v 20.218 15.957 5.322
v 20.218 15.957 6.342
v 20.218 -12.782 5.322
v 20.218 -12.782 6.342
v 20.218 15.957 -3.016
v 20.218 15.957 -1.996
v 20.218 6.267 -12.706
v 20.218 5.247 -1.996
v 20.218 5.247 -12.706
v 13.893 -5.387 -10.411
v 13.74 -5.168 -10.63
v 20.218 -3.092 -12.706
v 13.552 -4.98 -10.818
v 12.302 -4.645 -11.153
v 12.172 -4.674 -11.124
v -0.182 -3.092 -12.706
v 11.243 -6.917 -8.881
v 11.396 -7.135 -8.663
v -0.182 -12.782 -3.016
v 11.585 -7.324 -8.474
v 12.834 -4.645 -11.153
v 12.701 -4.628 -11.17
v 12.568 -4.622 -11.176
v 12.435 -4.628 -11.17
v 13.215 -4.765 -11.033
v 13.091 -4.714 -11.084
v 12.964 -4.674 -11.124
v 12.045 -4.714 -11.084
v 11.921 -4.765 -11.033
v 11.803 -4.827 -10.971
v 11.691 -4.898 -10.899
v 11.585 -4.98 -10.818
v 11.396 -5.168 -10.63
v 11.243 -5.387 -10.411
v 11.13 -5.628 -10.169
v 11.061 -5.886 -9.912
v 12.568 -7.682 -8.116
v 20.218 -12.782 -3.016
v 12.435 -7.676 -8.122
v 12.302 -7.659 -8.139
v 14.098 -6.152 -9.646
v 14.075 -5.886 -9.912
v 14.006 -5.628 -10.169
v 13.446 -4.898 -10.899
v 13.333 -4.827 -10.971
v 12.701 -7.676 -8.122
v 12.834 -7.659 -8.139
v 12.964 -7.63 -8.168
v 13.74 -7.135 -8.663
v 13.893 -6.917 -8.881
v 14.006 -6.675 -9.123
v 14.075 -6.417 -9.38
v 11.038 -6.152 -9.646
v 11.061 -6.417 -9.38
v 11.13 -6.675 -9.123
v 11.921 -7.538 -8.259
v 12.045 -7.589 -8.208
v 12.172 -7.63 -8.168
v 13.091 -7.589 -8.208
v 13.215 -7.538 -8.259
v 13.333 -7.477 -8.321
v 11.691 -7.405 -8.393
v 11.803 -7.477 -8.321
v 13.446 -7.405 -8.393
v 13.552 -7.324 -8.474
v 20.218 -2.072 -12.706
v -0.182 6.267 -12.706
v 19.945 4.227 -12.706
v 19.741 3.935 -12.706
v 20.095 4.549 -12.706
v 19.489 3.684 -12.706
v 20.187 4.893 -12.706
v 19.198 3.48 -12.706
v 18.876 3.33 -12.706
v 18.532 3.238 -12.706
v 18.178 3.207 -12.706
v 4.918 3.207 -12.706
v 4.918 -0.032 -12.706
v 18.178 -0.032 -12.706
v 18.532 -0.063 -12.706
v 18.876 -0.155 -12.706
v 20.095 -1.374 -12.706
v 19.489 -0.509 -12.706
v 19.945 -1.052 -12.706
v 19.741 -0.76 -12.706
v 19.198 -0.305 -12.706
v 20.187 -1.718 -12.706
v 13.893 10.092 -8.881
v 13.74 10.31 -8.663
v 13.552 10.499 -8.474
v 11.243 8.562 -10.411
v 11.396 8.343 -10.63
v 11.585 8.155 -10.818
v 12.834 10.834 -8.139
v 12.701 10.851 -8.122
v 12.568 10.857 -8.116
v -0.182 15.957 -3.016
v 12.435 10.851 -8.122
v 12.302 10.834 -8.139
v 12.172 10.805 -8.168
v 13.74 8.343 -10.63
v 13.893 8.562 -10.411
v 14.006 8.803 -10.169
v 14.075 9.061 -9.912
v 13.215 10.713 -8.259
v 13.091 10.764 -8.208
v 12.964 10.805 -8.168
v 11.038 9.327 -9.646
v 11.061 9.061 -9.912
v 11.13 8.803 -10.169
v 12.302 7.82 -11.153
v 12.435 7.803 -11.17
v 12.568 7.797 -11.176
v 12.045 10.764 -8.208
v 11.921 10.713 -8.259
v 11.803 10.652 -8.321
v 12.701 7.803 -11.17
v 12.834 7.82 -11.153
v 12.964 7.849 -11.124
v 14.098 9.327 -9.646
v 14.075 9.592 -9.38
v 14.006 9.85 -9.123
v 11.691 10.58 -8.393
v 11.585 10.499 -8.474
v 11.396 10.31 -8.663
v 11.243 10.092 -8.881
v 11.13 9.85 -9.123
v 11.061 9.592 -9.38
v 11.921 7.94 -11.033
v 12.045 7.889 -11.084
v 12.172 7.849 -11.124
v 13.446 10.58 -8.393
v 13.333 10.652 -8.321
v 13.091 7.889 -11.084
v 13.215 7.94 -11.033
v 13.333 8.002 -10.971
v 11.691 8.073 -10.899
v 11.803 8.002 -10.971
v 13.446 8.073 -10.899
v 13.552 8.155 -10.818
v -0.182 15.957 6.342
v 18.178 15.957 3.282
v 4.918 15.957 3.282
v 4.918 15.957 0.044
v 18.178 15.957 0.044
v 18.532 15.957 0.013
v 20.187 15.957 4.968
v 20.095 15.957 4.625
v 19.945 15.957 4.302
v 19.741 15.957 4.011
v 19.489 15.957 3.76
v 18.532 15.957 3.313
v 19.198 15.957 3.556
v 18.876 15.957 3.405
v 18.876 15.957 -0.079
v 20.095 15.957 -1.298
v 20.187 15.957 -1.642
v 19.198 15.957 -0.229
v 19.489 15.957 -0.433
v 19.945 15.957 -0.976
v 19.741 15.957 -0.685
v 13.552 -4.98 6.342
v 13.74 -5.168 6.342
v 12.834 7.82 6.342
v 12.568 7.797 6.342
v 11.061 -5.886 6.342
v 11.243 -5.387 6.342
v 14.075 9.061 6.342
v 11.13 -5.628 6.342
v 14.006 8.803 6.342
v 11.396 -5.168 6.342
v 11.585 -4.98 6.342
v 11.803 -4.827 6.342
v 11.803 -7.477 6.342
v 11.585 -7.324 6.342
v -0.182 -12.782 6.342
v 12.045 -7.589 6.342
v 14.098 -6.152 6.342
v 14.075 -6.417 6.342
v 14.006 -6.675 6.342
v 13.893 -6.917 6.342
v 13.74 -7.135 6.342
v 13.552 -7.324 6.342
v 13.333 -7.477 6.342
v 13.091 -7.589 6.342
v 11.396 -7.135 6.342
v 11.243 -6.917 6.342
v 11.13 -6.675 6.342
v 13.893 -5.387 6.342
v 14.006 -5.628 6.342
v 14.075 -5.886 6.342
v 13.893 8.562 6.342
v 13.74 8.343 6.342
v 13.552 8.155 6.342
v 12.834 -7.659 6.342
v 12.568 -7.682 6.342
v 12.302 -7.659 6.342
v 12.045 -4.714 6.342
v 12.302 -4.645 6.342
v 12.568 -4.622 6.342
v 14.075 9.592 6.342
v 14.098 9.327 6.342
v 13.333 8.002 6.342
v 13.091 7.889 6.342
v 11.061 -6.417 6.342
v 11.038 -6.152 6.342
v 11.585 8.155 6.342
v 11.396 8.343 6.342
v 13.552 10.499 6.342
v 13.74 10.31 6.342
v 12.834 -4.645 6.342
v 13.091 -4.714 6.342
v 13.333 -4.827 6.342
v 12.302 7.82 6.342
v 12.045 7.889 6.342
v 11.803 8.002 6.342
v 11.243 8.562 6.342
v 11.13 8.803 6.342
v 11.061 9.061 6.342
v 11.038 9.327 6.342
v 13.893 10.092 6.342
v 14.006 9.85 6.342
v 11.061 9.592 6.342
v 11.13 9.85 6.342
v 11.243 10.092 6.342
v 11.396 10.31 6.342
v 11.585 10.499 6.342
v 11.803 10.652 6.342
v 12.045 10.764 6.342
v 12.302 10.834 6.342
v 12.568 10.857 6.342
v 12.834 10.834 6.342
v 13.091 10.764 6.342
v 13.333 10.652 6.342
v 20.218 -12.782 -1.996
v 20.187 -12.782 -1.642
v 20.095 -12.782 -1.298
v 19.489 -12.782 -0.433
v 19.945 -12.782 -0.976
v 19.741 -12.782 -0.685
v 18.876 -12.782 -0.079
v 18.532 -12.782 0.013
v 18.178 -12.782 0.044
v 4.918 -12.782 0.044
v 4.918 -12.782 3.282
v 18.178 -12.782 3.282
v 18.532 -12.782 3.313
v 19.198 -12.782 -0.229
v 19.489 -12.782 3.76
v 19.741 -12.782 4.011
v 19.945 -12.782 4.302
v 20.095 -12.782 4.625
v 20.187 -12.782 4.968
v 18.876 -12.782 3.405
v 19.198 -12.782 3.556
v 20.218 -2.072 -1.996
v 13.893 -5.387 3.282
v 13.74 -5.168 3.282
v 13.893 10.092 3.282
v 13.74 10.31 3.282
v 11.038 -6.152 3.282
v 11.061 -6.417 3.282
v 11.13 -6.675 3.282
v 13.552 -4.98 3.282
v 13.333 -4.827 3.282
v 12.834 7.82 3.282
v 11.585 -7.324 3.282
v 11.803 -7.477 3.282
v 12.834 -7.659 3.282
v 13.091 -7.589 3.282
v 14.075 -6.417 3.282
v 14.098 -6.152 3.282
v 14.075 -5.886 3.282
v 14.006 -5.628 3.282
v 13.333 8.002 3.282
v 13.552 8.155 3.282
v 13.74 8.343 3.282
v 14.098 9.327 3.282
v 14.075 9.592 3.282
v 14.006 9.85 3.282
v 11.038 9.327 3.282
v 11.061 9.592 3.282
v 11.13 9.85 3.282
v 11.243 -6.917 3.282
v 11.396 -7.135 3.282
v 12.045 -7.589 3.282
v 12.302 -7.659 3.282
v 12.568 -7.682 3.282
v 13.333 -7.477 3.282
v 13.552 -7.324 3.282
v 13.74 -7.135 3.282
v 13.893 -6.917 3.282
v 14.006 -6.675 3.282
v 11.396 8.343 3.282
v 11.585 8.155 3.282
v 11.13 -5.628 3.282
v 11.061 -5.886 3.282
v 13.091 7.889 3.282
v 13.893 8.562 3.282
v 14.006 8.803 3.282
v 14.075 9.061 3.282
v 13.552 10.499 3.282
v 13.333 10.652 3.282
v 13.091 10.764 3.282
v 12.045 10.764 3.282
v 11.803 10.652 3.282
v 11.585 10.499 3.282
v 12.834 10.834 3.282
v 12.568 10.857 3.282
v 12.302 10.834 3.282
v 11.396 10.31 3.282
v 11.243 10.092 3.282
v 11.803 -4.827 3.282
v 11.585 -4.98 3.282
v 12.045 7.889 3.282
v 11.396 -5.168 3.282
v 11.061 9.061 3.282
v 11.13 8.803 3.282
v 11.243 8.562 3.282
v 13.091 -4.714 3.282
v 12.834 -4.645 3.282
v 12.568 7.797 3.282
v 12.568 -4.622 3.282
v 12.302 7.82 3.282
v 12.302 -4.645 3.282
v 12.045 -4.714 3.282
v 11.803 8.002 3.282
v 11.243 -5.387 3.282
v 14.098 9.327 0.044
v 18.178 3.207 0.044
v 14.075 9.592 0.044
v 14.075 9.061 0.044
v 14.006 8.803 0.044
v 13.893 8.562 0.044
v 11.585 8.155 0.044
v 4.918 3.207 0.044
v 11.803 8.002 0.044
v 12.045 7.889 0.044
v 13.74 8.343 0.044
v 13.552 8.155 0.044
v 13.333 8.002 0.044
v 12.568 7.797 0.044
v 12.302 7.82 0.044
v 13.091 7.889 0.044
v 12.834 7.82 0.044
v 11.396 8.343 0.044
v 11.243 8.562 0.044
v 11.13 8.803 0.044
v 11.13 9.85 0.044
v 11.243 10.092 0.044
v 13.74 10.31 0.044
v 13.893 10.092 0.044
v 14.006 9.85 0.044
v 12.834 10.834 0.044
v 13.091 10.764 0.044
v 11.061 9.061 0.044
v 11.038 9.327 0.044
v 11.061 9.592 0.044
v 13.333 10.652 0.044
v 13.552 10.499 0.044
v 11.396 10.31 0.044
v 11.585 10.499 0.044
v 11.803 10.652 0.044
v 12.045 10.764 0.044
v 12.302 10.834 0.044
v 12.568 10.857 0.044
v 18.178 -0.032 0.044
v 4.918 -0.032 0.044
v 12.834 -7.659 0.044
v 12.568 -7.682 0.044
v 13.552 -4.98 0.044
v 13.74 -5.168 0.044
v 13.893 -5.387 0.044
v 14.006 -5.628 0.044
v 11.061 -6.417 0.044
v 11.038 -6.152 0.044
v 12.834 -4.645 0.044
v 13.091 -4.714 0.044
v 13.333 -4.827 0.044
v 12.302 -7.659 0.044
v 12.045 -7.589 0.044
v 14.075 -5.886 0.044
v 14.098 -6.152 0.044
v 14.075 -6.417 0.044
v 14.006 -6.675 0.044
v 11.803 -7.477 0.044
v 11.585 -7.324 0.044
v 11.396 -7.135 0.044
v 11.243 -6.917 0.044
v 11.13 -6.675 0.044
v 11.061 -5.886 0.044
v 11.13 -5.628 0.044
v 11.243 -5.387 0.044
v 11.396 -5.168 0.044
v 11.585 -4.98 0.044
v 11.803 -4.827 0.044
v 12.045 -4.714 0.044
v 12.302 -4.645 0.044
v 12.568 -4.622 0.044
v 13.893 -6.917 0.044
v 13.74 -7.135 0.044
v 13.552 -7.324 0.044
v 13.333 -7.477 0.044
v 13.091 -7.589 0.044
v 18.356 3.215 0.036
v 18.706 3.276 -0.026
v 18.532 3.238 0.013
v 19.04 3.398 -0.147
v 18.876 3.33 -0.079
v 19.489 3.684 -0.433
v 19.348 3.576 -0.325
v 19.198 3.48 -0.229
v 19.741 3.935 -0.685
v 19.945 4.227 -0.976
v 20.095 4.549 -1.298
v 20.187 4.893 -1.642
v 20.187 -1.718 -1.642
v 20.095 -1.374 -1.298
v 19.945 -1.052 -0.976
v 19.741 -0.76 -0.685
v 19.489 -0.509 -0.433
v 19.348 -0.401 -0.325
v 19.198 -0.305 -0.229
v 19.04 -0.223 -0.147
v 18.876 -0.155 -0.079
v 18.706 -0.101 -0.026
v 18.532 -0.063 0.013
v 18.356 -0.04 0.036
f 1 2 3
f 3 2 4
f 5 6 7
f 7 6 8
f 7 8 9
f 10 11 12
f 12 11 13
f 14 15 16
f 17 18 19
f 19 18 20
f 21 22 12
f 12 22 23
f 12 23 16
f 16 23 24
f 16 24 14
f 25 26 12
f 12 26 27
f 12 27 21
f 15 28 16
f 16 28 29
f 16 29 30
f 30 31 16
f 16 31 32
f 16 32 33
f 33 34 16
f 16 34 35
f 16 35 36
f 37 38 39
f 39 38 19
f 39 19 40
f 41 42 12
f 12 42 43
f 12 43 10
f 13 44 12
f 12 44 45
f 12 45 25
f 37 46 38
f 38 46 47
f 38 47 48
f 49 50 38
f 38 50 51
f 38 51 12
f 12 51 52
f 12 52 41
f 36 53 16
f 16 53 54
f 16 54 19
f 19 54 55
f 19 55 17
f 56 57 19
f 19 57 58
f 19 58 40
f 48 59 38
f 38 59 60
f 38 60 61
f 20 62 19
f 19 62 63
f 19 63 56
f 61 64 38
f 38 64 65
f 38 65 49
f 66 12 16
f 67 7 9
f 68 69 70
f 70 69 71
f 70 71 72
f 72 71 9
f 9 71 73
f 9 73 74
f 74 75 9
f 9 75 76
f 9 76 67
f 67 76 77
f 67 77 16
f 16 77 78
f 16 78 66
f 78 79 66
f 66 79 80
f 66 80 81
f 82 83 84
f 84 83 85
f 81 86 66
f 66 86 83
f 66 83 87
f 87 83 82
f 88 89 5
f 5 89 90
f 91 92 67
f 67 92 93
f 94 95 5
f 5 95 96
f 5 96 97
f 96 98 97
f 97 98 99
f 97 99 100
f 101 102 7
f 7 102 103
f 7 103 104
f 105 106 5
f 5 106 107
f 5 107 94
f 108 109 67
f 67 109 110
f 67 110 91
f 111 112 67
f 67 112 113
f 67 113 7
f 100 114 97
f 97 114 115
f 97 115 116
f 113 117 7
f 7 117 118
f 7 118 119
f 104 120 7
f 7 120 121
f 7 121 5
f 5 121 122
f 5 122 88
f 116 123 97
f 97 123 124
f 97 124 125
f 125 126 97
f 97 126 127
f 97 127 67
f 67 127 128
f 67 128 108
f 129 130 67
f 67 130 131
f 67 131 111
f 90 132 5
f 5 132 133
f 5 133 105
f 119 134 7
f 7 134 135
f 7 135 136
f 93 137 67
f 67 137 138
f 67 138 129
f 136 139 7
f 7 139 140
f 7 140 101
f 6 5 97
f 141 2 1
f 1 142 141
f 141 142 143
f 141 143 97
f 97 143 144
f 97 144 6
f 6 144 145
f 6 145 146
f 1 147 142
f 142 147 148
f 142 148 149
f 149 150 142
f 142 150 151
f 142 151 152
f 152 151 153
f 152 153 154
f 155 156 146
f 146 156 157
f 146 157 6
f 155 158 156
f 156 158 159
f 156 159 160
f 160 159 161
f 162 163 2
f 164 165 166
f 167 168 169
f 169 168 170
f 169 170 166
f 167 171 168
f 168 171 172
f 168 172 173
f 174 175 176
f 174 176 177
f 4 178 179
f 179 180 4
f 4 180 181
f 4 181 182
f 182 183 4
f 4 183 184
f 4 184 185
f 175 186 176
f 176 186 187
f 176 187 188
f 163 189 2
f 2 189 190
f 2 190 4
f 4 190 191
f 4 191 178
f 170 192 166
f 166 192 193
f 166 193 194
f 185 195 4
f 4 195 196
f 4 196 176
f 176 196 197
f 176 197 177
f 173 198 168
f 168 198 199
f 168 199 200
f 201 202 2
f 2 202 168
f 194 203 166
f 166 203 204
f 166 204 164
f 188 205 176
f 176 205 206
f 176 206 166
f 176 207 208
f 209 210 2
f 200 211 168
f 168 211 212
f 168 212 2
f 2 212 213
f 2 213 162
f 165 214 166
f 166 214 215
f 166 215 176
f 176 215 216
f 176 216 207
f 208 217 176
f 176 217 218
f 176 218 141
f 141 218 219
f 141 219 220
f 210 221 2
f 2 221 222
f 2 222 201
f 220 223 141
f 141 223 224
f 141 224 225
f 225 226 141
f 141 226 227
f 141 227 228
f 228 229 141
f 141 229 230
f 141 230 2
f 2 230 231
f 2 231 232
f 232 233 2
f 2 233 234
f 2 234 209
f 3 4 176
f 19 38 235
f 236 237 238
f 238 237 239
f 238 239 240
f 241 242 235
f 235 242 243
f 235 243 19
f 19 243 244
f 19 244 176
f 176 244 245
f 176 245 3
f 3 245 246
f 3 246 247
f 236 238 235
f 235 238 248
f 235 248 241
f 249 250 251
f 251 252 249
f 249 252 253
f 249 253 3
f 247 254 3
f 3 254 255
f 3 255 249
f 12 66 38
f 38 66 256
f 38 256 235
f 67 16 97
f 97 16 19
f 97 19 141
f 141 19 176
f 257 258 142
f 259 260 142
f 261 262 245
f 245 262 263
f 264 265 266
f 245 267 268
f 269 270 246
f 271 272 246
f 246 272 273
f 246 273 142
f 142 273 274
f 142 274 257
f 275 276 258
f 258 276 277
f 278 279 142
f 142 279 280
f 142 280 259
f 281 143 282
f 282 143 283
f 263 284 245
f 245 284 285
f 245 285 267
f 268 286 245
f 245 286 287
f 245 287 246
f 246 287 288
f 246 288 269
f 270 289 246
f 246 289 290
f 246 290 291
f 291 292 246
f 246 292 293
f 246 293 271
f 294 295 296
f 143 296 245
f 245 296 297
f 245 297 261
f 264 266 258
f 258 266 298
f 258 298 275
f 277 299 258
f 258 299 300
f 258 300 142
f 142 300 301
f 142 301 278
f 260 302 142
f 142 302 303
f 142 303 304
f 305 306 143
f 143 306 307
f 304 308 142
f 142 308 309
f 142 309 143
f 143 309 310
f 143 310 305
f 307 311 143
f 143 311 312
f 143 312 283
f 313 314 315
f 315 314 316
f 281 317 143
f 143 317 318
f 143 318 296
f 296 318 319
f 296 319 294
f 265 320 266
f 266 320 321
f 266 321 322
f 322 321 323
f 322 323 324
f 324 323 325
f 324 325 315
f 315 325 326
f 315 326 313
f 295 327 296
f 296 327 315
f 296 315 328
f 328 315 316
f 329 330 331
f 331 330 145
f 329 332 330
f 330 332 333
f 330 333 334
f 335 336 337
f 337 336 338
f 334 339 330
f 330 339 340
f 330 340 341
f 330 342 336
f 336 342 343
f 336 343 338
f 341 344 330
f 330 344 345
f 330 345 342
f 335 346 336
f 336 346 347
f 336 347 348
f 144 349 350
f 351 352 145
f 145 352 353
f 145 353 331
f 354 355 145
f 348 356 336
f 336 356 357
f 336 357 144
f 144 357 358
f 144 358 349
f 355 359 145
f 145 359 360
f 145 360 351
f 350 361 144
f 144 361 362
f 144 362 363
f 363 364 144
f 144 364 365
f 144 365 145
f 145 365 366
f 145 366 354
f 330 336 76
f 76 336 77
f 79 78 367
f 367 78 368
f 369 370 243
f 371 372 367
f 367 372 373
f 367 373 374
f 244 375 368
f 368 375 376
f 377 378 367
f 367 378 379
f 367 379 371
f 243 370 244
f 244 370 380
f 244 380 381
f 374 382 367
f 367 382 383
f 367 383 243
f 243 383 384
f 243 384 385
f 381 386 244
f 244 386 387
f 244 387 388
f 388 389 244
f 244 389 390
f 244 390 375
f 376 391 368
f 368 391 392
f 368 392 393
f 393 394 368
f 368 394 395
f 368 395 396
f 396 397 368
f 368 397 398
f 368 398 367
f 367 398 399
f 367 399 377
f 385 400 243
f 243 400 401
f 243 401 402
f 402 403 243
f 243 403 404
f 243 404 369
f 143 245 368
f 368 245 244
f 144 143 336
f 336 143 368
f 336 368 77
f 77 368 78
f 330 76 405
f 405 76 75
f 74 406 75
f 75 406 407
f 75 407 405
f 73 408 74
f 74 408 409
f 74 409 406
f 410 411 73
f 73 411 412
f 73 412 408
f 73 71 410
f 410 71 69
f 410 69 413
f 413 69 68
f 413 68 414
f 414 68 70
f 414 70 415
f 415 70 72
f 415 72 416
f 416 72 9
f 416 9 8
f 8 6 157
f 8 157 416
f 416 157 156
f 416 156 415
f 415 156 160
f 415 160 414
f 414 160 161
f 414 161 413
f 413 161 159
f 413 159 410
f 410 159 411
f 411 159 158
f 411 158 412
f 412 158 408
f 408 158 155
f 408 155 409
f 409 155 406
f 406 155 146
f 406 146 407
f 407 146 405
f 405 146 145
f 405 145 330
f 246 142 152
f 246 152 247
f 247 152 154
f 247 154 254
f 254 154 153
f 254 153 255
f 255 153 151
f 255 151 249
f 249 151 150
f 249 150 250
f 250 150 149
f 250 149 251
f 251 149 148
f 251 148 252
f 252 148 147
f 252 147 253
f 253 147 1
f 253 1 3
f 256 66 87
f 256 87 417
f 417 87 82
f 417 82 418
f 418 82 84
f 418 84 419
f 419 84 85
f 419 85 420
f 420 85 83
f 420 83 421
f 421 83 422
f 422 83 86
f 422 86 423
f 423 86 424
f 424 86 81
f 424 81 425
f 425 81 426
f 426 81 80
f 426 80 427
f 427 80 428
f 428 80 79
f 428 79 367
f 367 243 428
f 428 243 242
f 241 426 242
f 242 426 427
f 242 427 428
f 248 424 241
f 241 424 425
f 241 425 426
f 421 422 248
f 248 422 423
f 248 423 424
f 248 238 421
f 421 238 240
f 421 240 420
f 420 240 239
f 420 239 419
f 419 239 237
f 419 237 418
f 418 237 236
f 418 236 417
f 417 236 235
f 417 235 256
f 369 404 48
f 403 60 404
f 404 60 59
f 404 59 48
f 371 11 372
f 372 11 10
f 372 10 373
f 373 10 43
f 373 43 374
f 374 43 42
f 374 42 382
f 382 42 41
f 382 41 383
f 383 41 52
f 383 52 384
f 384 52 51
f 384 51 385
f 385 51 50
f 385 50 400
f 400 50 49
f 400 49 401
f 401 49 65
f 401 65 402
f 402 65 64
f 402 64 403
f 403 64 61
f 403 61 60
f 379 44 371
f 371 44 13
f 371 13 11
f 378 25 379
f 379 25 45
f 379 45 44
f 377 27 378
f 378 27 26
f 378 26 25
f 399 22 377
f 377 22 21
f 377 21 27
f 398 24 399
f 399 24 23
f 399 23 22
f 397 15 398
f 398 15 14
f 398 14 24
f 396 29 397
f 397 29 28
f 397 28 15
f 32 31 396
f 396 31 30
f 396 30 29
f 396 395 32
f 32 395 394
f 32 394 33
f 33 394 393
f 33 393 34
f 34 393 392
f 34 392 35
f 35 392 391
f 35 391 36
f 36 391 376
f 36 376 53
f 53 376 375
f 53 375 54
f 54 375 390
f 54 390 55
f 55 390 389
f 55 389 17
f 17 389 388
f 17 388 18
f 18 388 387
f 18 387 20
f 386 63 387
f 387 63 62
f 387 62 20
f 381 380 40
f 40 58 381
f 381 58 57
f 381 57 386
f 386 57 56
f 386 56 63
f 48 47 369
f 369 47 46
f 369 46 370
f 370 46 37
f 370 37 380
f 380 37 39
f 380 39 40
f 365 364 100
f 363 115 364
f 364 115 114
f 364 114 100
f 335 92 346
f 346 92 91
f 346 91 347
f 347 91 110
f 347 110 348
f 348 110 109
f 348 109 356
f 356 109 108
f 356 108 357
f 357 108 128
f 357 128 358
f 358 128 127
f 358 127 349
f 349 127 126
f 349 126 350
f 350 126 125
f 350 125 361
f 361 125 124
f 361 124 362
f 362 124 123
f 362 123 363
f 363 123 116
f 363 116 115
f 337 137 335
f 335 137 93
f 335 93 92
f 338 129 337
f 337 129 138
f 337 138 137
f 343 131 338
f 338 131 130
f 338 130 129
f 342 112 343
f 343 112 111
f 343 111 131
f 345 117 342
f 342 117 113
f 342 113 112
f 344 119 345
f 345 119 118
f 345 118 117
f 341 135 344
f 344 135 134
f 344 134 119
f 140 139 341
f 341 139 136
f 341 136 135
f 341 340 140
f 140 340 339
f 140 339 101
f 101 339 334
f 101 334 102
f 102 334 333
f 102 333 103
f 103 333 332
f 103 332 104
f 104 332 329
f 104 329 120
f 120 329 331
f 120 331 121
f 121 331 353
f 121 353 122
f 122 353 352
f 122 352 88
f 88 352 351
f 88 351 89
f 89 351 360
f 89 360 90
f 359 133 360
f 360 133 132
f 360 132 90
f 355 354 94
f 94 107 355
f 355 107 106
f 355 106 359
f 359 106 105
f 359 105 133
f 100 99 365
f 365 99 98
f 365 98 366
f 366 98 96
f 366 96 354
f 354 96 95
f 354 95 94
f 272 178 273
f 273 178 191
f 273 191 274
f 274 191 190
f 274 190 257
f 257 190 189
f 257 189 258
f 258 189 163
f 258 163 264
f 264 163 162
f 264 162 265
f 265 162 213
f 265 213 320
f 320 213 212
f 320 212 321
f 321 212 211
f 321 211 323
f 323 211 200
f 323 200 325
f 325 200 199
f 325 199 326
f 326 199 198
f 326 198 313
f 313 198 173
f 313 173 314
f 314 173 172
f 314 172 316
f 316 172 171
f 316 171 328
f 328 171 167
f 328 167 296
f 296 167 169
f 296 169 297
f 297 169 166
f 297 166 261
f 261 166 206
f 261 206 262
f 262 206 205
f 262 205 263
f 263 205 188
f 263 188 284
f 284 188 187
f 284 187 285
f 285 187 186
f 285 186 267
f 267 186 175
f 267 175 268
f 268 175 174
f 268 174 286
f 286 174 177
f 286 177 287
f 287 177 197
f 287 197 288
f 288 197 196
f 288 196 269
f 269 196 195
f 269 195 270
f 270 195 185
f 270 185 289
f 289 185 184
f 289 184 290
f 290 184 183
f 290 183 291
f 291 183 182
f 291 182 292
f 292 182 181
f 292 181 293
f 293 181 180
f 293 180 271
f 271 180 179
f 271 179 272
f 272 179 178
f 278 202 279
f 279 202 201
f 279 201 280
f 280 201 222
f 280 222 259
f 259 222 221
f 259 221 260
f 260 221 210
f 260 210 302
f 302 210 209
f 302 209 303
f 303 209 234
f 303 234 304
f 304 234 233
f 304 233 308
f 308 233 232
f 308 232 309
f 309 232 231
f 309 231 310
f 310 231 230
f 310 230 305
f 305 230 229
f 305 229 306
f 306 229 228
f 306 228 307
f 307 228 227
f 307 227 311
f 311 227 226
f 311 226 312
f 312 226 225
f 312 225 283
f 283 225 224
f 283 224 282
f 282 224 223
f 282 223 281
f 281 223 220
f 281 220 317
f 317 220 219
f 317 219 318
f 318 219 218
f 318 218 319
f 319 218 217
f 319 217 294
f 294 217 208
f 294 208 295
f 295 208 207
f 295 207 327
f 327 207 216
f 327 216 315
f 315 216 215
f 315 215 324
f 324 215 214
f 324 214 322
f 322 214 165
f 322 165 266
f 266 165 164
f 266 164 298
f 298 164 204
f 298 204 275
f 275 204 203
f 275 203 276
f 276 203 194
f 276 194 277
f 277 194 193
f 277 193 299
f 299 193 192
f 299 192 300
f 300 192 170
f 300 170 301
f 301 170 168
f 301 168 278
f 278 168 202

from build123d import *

# Parameters (mm, degrees)
BOSS_EXTRUDE1_DEPTH = 20
CUT_EXTRUDE1_DEPTH  = 15
FILLET1_R           = 2
SKETCH5_R           = 1.5
CUT_EXTRUDE4_DEPTH  = 32.535079673
SCALE1_SCALE        = 1.02


with BuildPart() as part:
    # Sketch1 → Boss-Extrude1 (new body)
    with BuildSketch(Plane(origin=(0, 0, 0), x_dir=(0, 0, -1), z_dir=(1, 0, 0))):
        Polygon((0, -12.5), (-3.175, -12.5), (-6.175, -12.5), (-6.175, 15.675), (-3.175, 15.675), (0, 15.675), (3, 15.675), (12.5, 6.175), (12.5, 3.175), (12.5, 0), (12.5, -3), (3, -12.5), align=None)
    extrude(amount=BOSS_EXTRUDE1_DEPTH)

    # Sketch2 → Cut-Extrude1 (cut)
    with BuildSketch(Plane(origin=(20, 0, 0), x_dir=(0, 0, -1), z_dir=(1, 0, 0))):
        Polygon((-3.175, -12.5), (0, -12.5), (0, 0), (12.5, 0), (12.5, 3.175), (0, 3.175), (0, 15.675), (-3.175, 15.675), (-3.175, 3.175), align=None)
    extrude(amount=-CUT_EXTRUDE1_DEPTH, mode=Mode.SUBTRACT)

    # Fillet1
    fillet1_edges = [part.edges().sort_by_distance(p)[0] for p in [
        (20, 1.5875, 3.175),
        (20, -6.25, 0),
        (20, 0, -6.25),
        (20, 3.175, -6.25),
        (20, 9.425, 0),
    ]]
    fillet(fillet1_edges, radius=FILLET1_R)

    # Sketch5 → Cut-Extrude4 (cut, through all)
    with BuildSketch(Plane.XY.offset(6.175)):
        with Locations(Location((12.5, 9.175, 0), (0, 0, 90))):
            Circle(SKETCH5_R)
        with Locations(Location((12.5, -6, 0), (0, 0, 90))):
            Circle(SKETCH5_R)
    extrude(amount=-CUT_EXTRUDE4_DEPTH, mode=Mode.SUBTRACT)


with BuildPart() as part_1:
    # Scale1: scaled about (9.096060395, 1.5875, -2.193637699)
    add(part.part.scale(SCALE1_SCALE).moved(Location((-0.181921208, -0.03175, 0.043872754))))


solid = part_1.part
